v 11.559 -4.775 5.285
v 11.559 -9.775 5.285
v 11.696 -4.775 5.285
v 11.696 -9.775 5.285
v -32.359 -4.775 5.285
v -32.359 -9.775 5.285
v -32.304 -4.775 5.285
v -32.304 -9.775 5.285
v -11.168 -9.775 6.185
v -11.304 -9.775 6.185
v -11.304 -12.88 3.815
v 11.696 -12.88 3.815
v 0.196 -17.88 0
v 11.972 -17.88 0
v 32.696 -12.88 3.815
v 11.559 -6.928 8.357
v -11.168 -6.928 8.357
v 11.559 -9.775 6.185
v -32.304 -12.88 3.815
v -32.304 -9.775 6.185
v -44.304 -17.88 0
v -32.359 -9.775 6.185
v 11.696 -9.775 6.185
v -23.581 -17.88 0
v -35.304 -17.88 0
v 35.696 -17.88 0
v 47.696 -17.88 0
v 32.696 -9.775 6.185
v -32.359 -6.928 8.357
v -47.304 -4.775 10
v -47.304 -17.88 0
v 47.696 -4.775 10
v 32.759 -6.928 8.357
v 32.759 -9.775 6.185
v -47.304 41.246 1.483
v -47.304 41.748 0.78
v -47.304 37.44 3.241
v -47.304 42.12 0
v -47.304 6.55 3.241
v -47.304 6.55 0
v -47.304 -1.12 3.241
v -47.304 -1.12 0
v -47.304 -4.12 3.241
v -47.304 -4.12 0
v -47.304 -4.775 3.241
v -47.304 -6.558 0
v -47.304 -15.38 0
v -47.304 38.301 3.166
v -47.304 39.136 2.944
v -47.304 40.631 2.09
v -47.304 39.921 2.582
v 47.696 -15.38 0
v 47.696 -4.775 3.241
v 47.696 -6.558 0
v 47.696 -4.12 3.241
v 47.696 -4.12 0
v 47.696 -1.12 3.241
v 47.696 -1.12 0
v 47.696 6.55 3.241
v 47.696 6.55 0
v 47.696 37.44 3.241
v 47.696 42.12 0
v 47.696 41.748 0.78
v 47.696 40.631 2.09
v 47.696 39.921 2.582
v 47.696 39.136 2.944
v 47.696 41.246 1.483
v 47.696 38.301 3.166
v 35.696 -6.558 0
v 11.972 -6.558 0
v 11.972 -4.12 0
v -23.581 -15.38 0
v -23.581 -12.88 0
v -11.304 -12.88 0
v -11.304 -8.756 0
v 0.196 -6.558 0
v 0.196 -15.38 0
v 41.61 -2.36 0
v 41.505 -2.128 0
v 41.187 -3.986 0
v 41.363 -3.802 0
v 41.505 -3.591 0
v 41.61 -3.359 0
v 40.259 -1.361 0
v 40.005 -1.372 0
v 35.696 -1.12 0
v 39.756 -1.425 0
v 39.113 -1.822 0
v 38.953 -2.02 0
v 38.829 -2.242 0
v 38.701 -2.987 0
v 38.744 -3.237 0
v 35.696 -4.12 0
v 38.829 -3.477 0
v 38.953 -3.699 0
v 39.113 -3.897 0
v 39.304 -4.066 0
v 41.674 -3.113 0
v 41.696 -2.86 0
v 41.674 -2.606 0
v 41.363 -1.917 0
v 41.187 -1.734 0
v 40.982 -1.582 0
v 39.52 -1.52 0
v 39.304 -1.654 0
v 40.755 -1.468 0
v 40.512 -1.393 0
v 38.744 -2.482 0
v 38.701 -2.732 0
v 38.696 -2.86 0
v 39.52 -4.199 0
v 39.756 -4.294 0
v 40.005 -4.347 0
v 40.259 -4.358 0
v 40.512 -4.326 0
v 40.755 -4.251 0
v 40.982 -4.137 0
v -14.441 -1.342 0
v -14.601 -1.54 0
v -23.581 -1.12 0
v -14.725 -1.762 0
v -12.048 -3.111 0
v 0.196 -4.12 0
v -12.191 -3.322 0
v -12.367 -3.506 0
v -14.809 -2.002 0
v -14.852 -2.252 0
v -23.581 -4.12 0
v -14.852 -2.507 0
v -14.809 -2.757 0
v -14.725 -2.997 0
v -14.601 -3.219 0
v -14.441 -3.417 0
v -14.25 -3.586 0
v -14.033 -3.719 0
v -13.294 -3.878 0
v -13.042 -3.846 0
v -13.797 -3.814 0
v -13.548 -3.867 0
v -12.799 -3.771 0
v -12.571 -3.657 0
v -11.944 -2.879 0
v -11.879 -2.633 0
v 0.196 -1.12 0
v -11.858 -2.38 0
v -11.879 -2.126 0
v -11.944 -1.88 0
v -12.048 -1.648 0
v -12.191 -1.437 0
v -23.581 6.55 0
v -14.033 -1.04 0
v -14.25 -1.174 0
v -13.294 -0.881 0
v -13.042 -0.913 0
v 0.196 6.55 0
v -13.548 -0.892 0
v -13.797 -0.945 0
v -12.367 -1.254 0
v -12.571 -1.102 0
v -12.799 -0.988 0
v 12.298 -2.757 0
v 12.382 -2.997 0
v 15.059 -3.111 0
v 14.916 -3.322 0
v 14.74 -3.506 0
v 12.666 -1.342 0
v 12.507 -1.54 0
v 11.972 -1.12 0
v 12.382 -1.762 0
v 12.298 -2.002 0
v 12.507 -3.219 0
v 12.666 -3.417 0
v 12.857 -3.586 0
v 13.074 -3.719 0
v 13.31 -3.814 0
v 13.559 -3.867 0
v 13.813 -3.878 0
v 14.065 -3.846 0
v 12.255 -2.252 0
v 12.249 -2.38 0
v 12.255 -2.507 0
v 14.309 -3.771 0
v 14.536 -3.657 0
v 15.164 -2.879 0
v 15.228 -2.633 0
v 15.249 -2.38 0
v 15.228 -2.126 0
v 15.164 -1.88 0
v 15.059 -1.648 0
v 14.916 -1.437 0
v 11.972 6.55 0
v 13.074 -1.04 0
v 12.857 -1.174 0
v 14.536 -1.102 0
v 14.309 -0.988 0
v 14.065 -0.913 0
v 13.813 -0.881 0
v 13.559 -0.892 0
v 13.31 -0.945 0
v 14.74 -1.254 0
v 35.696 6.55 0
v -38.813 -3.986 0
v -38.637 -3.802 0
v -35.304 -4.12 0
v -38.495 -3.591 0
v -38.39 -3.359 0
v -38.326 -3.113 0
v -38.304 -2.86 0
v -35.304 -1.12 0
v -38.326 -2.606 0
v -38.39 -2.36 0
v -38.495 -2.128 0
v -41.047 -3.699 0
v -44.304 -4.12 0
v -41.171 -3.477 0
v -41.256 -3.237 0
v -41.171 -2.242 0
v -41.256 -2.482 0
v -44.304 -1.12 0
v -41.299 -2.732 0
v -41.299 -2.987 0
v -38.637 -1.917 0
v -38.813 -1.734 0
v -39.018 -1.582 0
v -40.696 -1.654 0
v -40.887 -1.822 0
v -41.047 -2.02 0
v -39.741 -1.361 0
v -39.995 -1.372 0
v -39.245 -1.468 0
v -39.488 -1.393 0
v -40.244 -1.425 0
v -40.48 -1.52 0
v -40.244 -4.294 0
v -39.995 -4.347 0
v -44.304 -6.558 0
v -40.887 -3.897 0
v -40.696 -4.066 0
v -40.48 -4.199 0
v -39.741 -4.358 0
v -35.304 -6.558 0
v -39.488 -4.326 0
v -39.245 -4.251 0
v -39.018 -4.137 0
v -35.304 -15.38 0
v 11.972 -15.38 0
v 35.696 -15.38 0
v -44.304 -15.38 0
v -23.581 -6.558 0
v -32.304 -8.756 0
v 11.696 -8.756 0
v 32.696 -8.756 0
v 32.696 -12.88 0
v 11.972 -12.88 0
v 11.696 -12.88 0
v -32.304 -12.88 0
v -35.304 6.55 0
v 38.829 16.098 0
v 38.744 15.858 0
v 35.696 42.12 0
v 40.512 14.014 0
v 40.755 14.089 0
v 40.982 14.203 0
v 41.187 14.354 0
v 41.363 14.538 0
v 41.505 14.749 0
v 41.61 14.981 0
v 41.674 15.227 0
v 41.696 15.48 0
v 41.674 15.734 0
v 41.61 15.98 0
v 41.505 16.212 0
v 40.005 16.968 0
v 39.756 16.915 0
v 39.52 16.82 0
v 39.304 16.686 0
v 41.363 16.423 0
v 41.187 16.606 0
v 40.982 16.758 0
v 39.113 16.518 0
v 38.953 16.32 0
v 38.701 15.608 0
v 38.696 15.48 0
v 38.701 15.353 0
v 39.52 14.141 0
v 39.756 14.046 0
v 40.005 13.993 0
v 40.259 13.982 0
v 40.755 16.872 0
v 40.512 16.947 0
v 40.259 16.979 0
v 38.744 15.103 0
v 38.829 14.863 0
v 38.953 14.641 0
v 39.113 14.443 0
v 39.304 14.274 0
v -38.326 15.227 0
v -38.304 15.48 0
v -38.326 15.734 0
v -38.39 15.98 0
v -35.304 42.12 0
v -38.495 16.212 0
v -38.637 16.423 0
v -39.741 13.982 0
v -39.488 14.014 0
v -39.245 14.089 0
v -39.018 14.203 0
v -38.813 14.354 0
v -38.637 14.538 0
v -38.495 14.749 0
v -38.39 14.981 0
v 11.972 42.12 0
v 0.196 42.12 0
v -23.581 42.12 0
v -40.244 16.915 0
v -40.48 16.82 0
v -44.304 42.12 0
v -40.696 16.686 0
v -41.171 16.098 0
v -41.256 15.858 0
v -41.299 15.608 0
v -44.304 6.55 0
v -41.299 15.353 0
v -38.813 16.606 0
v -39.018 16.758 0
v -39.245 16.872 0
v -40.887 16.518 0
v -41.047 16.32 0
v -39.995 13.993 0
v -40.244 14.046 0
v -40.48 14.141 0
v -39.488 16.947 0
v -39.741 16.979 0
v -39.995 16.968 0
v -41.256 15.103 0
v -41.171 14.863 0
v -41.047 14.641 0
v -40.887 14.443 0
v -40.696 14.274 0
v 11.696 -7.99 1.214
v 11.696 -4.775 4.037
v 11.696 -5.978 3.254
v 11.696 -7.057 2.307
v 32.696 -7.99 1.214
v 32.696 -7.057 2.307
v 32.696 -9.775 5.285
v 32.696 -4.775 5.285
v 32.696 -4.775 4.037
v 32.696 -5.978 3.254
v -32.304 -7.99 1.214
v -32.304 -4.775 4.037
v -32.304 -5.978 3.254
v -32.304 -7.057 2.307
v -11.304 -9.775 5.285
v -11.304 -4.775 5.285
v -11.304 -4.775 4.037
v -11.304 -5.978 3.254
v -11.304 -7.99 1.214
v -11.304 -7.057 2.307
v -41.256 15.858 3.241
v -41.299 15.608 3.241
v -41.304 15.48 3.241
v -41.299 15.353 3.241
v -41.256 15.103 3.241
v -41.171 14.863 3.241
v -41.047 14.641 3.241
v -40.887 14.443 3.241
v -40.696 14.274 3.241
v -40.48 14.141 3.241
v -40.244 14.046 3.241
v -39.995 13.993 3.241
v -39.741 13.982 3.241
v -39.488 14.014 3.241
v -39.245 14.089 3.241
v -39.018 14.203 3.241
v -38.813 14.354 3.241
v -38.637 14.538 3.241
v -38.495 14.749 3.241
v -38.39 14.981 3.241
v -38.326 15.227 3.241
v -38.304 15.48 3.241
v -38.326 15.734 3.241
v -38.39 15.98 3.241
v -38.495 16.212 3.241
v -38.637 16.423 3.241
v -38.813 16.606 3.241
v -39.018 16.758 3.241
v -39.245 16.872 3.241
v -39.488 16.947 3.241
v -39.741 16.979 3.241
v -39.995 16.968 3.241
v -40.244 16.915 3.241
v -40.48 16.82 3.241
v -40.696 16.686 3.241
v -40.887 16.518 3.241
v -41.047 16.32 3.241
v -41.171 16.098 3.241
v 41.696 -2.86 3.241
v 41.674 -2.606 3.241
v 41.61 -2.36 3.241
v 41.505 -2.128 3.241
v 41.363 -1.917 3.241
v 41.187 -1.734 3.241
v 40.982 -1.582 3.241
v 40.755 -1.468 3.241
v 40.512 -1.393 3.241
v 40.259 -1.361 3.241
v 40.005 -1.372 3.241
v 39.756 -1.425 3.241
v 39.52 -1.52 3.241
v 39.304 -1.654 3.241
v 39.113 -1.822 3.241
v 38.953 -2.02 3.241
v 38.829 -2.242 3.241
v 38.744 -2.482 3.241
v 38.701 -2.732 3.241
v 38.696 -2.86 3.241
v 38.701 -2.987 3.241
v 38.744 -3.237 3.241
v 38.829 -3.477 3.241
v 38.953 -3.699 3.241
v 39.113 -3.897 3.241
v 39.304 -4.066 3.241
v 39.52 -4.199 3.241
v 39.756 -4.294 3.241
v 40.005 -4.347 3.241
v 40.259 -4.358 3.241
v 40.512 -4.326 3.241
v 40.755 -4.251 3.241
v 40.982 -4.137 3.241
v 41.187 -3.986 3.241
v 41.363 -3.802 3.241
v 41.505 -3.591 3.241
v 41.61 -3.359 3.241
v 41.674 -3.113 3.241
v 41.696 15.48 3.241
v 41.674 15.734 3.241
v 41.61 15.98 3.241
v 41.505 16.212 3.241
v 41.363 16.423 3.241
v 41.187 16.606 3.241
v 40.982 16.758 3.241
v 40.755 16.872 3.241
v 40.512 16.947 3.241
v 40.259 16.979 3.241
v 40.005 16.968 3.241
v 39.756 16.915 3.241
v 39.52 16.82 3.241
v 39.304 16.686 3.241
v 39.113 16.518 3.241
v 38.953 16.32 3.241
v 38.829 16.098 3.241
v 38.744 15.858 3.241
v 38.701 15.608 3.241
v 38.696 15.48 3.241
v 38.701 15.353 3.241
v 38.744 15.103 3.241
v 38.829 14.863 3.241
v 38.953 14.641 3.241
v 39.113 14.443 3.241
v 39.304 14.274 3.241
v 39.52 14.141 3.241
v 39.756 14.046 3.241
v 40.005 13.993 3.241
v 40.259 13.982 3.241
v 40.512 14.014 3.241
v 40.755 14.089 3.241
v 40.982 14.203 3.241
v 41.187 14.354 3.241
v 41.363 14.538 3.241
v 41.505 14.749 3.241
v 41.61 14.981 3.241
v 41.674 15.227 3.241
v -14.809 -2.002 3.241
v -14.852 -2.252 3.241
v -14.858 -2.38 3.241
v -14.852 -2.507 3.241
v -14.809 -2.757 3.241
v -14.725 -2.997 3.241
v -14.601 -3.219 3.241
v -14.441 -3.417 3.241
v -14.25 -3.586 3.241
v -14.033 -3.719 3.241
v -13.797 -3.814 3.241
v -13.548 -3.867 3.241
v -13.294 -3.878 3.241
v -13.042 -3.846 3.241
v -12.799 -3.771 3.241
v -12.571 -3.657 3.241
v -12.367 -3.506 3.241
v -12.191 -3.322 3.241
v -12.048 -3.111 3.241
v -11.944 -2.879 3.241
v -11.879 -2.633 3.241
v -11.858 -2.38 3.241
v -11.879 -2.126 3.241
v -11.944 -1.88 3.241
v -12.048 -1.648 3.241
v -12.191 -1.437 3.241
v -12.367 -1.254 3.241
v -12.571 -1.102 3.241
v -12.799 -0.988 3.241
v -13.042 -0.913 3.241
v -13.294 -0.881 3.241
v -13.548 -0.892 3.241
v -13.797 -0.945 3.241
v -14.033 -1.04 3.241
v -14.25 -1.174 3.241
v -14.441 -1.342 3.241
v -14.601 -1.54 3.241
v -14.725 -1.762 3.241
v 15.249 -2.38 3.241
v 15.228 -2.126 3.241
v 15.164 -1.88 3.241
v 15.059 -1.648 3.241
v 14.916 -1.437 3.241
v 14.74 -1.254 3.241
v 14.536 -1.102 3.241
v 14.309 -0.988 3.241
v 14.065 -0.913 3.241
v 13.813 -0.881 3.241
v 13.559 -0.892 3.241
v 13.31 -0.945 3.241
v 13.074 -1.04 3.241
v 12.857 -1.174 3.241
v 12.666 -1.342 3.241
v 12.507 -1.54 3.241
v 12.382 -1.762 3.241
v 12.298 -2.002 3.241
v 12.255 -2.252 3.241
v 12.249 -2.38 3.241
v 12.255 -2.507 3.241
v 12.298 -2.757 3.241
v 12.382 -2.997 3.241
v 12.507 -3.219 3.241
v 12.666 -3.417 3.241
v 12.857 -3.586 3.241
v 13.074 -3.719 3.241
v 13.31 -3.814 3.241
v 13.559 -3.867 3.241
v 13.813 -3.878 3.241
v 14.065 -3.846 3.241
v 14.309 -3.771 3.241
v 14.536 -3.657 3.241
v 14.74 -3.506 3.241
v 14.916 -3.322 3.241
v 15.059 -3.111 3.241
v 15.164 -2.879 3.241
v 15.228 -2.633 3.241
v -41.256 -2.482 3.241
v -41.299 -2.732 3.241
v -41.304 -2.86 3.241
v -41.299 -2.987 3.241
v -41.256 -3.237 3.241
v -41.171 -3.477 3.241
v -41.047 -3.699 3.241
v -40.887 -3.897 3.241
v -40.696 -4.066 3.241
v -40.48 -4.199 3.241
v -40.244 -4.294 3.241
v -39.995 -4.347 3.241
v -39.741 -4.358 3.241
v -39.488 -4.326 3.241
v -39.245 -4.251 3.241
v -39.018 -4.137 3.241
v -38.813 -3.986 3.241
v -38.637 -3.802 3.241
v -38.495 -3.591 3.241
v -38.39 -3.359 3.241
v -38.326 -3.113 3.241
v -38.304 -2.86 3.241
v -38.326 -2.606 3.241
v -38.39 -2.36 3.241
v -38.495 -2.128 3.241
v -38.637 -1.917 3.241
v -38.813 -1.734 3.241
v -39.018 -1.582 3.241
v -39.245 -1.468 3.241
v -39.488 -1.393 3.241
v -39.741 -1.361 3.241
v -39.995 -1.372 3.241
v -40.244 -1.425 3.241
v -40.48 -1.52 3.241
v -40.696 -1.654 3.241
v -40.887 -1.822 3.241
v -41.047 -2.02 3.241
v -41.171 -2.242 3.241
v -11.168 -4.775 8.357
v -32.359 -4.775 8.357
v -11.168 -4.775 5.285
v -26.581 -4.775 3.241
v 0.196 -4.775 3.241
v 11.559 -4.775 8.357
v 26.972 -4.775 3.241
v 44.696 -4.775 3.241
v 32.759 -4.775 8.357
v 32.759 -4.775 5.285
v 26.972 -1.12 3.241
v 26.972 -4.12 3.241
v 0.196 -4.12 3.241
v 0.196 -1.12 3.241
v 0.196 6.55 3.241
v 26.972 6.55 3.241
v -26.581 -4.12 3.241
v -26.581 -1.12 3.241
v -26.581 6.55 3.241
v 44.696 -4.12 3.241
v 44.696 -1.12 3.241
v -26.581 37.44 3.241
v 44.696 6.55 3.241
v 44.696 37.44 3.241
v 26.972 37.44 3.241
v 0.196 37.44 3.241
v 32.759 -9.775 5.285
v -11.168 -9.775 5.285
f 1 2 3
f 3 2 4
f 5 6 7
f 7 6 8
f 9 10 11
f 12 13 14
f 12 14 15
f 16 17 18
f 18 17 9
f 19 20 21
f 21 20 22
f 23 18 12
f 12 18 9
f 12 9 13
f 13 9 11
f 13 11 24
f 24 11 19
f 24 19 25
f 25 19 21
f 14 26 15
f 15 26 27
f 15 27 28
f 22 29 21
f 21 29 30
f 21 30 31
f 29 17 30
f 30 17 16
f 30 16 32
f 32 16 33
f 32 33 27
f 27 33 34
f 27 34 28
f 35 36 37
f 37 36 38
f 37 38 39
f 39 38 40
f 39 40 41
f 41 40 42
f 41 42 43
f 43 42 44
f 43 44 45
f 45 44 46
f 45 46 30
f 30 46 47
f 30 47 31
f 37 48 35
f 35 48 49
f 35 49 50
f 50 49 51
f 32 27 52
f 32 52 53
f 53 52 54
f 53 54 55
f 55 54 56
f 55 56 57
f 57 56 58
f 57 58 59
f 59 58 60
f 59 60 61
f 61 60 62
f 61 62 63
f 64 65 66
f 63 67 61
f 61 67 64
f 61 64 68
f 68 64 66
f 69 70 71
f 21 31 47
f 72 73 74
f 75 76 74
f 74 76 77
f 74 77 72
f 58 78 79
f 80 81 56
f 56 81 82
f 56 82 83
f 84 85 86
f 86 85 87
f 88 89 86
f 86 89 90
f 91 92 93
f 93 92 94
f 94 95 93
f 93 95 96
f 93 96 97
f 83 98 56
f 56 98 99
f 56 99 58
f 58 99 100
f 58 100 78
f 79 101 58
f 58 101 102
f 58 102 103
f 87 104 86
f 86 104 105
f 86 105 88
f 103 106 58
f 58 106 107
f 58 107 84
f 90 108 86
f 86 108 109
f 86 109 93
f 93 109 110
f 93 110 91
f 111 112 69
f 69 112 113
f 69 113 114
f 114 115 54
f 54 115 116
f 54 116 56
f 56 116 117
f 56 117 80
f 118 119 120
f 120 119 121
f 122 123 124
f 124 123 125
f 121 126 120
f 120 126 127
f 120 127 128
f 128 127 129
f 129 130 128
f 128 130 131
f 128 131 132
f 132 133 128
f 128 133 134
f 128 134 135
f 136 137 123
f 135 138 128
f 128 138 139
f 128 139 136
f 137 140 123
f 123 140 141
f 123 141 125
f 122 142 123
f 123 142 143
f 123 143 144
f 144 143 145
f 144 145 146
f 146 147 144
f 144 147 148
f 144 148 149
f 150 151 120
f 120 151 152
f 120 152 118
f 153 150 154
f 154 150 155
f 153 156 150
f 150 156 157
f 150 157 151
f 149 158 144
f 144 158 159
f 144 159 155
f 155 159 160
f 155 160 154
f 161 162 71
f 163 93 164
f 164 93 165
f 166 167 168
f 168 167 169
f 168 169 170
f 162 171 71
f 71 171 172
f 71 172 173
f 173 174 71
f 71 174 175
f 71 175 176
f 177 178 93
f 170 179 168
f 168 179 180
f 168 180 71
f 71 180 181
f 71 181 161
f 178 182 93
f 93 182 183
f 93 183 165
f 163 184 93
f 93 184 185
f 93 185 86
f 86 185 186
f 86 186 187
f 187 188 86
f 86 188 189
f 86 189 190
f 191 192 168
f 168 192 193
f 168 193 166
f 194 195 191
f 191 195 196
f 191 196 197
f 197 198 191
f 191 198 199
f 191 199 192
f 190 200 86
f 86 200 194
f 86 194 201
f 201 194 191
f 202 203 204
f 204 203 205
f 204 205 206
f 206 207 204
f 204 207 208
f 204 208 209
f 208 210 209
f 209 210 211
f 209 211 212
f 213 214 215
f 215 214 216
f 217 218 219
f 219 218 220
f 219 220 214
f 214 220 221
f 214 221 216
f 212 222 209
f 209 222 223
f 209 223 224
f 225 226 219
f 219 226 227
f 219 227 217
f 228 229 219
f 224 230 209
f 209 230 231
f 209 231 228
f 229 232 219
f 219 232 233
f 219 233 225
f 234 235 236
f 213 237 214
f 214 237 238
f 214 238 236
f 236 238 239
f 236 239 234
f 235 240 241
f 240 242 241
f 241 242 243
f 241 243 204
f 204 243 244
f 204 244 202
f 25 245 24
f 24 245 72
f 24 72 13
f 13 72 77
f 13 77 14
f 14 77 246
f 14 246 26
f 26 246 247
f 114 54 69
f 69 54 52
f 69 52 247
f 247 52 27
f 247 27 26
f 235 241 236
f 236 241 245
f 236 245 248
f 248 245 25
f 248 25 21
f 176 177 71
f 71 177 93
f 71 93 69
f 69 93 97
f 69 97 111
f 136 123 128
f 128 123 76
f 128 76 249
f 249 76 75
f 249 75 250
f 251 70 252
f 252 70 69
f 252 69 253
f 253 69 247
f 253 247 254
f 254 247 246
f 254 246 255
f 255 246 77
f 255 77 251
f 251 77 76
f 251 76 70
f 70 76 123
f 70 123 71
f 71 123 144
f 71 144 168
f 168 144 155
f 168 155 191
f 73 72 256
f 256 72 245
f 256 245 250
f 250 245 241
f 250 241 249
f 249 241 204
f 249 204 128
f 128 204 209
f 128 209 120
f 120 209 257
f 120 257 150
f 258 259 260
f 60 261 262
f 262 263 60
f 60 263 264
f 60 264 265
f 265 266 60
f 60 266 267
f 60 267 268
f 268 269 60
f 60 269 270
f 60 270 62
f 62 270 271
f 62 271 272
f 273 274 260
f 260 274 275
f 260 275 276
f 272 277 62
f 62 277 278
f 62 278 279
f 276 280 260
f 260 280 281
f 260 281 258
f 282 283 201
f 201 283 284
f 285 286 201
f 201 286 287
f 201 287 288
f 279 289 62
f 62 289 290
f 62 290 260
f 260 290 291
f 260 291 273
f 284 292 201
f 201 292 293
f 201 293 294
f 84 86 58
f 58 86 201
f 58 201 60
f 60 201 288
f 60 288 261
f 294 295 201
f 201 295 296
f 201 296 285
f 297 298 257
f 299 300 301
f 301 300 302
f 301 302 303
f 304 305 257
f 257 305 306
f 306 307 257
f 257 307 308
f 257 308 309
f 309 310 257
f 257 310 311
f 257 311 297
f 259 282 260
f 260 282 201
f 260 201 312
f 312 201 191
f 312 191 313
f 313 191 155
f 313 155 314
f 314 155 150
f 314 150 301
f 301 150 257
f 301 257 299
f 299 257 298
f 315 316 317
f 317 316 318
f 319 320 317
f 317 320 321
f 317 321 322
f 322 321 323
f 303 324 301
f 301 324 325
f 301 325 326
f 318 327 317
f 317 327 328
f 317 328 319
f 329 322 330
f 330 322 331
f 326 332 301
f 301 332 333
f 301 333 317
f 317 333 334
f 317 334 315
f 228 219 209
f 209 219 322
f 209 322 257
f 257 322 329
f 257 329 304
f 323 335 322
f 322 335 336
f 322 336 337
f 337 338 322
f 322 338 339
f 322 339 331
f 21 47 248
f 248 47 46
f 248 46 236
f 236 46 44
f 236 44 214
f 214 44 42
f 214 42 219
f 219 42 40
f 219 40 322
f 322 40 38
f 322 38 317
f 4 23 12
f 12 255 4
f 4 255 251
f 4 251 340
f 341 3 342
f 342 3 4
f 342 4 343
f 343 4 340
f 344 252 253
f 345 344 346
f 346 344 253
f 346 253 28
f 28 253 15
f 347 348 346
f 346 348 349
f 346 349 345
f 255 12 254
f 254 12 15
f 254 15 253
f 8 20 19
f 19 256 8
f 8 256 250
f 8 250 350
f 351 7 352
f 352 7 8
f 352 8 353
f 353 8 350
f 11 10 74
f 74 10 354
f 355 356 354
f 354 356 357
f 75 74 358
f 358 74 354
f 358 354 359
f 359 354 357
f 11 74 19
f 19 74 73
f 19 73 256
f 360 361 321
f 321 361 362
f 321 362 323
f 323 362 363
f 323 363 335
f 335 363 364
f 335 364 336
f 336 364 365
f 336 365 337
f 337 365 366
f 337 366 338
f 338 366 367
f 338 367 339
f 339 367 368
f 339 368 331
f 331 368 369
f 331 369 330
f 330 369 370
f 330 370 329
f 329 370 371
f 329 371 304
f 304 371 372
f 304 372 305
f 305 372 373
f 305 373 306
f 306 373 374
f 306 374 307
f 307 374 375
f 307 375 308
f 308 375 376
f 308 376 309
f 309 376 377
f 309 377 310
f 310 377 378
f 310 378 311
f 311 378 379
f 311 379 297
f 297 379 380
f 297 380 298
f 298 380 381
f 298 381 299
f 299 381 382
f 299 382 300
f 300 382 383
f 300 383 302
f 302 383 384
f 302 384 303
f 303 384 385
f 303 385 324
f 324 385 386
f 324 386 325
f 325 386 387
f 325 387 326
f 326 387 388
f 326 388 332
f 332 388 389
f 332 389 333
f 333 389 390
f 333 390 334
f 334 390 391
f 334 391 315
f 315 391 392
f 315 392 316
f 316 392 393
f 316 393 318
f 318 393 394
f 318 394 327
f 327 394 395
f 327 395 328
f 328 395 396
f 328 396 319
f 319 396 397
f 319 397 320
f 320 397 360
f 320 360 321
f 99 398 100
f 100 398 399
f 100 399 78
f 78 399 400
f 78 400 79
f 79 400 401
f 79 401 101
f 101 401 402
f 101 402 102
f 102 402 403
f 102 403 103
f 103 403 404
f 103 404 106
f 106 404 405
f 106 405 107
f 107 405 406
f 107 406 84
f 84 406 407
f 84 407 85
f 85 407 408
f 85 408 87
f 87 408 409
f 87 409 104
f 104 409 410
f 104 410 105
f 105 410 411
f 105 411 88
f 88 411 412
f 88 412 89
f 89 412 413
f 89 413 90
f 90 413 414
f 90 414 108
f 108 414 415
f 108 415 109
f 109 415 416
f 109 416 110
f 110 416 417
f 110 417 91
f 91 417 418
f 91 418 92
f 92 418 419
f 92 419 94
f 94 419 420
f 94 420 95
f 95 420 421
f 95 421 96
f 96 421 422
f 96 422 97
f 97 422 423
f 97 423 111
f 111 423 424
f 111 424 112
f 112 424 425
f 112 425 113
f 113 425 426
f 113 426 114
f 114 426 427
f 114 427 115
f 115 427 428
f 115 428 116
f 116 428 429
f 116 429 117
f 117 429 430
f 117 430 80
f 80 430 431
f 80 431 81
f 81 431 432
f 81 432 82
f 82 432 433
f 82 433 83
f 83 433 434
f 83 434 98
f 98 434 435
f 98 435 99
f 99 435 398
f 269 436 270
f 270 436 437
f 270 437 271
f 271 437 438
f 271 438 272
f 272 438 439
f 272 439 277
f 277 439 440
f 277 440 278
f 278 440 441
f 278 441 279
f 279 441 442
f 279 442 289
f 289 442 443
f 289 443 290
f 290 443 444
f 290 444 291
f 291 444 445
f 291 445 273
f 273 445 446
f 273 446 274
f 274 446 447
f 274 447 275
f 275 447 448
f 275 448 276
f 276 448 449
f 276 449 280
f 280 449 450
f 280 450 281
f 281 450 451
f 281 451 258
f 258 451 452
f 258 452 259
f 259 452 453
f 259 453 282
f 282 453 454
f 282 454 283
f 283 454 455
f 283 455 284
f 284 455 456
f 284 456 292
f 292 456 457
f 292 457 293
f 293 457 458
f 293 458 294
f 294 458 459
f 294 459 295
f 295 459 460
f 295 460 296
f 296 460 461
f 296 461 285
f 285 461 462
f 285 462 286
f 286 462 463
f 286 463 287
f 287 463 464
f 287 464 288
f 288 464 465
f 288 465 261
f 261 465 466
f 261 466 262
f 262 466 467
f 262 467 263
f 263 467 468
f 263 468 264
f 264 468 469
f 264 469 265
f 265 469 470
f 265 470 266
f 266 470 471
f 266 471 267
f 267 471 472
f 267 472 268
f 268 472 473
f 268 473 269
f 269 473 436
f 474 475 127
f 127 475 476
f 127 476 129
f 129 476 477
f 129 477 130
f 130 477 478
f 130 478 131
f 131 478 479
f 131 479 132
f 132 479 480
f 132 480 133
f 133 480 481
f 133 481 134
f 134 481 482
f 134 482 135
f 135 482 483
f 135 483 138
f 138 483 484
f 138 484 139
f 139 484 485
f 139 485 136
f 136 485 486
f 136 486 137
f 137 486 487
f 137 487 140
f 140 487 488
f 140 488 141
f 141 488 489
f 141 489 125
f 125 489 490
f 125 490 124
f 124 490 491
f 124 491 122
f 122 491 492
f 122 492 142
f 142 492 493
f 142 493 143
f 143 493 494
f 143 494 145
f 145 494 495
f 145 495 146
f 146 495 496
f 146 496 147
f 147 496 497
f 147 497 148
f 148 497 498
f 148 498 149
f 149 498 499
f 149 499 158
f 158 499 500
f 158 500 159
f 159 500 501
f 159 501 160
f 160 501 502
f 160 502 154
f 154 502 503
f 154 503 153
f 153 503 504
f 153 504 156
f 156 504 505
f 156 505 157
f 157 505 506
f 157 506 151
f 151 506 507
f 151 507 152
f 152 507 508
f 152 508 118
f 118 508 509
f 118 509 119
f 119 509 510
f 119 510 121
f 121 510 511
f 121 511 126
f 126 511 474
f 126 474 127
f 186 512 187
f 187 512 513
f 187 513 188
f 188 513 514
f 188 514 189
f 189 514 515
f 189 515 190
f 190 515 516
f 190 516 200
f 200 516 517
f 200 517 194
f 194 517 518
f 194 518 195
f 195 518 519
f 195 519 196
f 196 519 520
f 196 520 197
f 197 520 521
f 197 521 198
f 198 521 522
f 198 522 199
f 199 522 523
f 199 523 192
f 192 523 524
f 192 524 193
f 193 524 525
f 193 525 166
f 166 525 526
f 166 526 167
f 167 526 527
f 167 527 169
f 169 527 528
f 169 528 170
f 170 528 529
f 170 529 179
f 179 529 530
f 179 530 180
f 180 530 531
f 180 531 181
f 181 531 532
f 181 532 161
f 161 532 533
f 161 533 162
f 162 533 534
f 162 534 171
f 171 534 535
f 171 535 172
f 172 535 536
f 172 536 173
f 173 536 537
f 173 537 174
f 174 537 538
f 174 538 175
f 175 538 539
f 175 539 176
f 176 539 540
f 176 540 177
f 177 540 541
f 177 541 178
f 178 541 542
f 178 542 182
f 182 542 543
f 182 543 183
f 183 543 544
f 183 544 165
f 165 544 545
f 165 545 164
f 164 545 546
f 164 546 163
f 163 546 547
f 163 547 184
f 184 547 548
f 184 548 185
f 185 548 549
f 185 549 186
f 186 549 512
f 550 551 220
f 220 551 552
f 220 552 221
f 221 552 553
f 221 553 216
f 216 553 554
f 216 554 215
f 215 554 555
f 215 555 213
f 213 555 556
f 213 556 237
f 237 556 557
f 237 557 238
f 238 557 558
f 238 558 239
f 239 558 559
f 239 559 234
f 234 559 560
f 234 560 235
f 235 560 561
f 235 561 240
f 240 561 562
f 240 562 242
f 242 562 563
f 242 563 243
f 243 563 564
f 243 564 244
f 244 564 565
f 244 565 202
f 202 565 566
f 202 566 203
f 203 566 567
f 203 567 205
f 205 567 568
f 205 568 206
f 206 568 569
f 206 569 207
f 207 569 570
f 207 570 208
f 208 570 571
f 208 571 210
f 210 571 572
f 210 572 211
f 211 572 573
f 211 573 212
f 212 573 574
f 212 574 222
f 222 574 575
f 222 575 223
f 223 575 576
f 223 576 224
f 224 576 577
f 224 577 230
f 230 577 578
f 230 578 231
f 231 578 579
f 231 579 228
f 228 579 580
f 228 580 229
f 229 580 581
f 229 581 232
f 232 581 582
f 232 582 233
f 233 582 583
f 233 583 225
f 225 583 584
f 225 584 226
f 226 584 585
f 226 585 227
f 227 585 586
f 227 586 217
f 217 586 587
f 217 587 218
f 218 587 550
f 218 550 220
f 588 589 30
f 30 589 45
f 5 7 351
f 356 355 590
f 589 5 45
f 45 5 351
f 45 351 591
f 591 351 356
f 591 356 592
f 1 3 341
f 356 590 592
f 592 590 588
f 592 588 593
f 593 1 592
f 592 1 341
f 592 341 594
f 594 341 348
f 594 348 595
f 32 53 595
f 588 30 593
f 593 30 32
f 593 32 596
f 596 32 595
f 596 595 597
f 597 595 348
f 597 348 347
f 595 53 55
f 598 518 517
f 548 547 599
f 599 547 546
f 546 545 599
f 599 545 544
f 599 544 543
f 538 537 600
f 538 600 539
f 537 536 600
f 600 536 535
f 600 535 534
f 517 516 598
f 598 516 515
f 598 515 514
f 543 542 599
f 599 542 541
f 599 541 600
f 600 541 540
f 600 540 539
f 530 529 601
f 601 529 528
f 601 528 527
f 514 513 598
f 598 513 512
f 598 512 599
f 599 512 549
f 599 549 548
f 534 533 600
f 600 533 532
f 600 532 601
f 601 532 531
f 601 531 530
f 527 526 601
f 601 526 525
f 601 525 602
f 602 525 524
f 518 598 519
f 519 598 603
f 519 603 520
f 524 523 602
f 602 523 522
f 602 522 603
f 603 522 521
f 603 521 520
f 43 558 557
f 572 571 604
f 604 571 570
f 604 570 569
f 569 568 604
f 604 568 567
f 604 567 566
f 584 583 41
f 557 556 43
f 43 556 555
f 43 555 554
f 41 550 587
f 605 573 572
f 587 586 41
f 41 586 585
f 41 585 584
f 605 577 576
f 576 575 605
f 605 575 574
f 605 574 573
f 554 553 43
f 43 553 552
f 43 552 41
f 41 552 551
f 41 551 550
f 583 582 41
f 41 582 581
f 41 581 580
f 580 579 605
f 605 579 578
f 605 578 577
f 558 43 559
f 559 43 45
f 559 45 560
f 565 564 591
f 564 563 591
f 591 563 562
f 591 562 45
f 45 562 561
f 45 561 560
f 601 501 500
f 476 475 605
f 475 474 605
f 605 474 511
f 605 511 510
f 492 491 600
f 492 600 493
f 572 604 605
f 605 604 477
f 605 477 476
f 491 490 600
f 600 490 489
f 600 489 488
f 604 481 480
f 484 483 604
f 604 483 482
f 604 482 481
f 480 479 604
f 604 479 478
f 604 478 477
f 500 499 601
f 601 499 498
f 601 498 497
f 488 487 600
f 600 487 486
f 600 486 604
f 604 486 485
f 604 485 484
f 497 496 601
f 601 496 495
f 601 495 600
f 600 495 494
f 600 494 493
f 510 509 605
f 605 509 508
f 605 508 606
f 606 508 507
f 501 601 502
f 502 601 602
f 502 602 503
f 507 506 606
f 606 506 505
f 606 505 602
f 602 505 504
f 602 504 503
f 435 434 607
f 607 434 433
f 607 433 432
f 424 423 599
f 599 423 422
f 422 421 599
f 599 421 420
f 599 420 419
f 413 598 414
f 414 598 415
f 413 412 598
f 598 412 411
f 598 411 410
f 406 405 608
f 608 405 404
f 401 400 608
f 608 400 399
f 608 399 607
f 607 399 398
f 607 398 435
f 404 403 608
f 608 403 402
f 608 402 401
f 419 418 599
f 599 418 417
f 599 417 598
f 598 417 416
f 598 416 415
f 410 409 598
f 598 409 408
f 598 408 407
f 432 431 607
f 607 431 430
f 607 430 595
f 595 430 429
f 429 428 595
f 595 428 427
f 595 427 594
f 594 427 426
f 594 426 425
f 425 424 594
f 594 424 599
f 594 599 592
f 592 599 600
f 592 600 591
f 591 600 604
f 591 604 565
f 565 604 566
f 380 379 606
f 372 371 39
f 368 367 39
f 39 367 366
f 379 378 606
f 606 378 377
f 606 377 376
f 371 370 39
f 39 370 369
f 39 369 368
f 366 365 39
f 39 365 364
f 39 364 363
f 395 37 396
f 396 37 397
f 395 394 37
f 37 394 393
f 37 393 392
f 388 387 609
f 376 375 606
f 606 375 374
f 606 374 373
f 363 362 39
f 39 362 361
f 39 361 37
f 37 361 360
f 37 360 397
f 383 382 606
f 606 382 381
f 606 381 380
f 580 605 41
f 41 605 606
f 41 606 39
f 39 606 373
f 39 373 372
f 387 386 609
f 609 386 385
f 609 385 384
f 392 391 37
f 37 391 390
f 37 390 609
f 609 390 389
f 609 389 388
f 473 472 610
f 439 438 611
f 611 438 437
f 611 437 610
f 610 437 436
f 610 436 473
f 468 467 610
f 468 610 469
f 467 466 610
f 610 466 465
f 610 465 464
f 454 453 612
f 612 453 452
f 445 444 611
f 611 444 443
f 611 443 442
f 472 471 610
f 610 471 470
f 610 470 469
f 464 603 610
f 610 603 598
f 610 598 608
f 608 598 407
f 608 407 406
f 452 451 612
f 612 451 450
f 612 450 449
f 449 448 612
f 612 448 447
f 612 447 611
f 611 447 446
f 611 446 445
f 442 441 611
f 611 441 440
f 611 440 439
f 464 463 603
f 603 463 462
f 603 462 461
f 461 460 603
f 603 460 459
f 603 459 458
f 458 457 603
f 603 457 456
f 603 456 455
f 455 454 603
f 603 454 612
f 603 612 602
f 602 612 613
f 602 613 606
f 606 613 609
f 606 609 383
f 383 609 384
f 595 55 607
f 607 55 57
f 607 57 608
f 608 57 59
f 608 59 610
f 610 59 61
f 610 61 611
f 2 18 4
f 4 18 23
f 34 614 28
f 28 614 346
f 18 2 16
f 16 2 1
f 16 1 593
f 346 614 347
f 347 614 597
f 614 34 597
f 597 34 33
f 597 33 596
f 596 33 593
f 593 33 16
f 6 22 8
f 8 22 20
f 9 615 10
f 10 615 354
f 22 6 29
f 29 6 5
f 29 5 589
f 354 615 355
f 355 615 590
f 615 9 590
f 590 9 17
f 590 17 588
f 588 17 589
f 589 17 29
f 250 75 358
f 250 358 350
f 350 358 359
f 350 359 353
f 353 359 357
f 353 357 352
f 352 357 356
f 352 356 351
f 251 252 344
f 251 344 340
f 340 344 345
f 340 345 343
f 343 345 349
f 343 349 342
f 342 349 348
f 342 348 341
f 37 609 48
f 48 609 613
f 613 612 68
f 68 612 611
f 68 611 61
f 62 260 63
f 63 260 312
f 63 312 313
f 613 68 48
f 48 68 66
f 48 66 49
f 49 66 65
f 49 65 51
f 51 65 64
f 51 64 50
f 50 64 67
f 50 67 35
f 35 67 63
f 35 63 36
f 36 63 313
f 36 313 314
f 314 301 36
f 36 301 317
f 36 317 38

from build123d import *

# Parameters (mm, degrees)
CROQUIS1_W              = 95
CROQUIS1_H              = 50
SALIENTE_EXTRUIR1_DEPTH = 10
CROQUIS2_W              = 21
CROQUIS2_H              = 4.123726598
CORTAR_EXTRUIR1_DEPTH   = 20
CORTAR_EXTRUIR2_DEPTH   = 1000
REDONDEO1_R             = 5
CROQUIS5_R              = 1.5
CORTAR_EXTRUIR3_DEPTH   = 10
CORTAR_EXTRUIR4_DEPTH   = 140
CROQUIS8_W              = 21.19141069
CROQUIS8_H              = 3.071218941
CROQUIS8_W_2            = 21.2
CORTAR_EXTRUIR5_DEPTH   = 5
REDONDEO2_R             = 10
REDONDEO3_R             = 10
CROQUIS9_W              = 95
CROQUIS9_H              = 3.240818253
SALIENTE_EXTRUIR2_DEPTH = 10
REDONDEO4_R             = 5


with BuildPart() as part:
    # Croquis1 → Saliente-Extruir1 (new body)
    with BuildSketch(Plane.XY):
        with Locations((0.195712782, 7.120478413)):
            Rectangle(CROQUIS1_W, CROQUIS1_H)
    extrude(amount=SALIENTE_EXTRUIR1_DEPTH)

    # Croquis2 → Cortar-Extruir1 (cut)
    with BuildSketch(Plane.XY.offset(10)):
        with Locations((-21.804287218, -10.817658288)):
            Rectangle(CROQUIS2_W, CROQUIS2_H)
        with Locations((22.195712782, -10.817658288)):
            Rectangle(CROQUIS2_W, CROQUIS2_H)
    extrude(amount=-CORTAR_EXTRUIR1_DEPTH, mode=Mode.SUBTRACT)

    # Croquis3 → Cortar-Extruir2 (cut)
    with BuildSketch(Plane.ZY.offset(47.304287218)):
        Polygon((0, -17.879521587), (10, -4.774745355), (10, -17.879521587), align=None)
    extrude(amount=-CORTAR_EXTRUIR2_DEPTH, mode=Mode.SUBTRACT)

    # Redondeo1
    redondeo1_edges = [part.edges().sort_by_distance(p)[0] for p in [
        (0.195712782, 32.120478413, 10),
    ]]
    fillet(redondeo1_edges, radius=REDONDEO1_R)

    # Croquis5 → Cortar-Extruir3 (cut)
    with BuildSketch(Plane.XY.offset(10)):
        with Locations((-39.804287218, 15.480478413)):
            Circle(CROQUIS5_R)
        with Locations(Location((40.195712782, 15.480478413, 0), (0, 0, 180))):
            Circle(CROQUIS5_R)
        with Locations((-13.357848867, -2.379521587)):
            Circle(CROQUIS5_R)
        with Locations(Location((13.749274431, -2.379521587, 0), (0, 0, 180))):
            Circle(CROQUIS5_R)
        with Locations((-39.804287218, -2.859521587)):
            Circle(CROQUIS5_R)
        with Locations(Location((40.195712782, -2.859521587, 0), (0, 0, 180))):
            Circle(CROQUIS5_R)
    extrude(amount=-CORTAR_EXTRUIR3_DEPTH, mode=Mode.SUBTRACT)

    # Croquis7 → Cortar-Extruir4 (cut)
    with BuildSketch(Plane.ZY.offset(47.304287218)):
        Polygon((10, -4.774745355), (4.790814809, -4.774745355), (3.240818253, -4.774745355), (3.240818253, -4.292734616), (3.240818253, 32.120478413), (5, 32.120478413), (10, 32.120478413), align=None)
    extrude(amount=-CORTAR_EXTRUIR4_DEPTH, mode=Mode.SUBTRACT)

    # Croquis8 → Cortar-Extruir5 (cut)
    with BuildSketch(Plane(origin=(0, -4.774745355, 0), x_dir=(1, 0, 0), z_dir=(0, 1, 0))):
        with Locations((-21.763502643, -6.820936578)):
            Rectangle(CROQUIS8_W, CROQUIS8_H)
        with Locations((22.159222862, -6.820936578)):
            Rectangle(CROQUIS8_W_2, CROQUIS8_H)
    extrude(amount=-CORTAR_EXTRUIR5_DEPTH, mode=Mode.SUBTRACT)

    # Redondeo2
    # the kernel refuses this fillet: 10 mm, written as the material it takes off along each edge
    with BuildSketch(Plane(origin=(-11.304287218, -8.755794989, 5.285327107), x_dir=(0, 0, -1), z_dir=(-1, 0, 0))) as redondeo2_piece_1:
        with BuildLine():
            CenterArc((10, -8.818835496), REDONDEO2_R, 118.129583681, 61.870416319)
            Line((0, -8.818835496), (-0.2, -8.818835496))
            Line((-0.2, -8.818835496), (-0.2, 0))
            Line((-0.2, 0), (0, 0.2))
            ThreePointArc((0, 0.2), (2.642663554, 0.2), (5.191033649, 0.17637671))
            Line((5.191033649, 0.17637671), (5.285327107, 0))
        make_face()
    extrude(amount=21, mode=Mode.SUBTRACT)

    # Redondeo3
    # the kernel refuses this fillet: 10 mm, written as the material it takes off along each edge
    with BuildSketch(Plane(origin=(11.695712782, -8.755794989, 5.285327107), x_dir=(0, 0, -1), z_dir=(1, 0, 0))) as redondeo3_piece_1:
        with BuildLine():
            CenterArc((10, 8.818835496), REDONDEO3_R, 180, 61.870416319)
            Line((0, 8.818835496), (-0.2, 8.818835496))
            Line((-0.2, 8.818835496), (-0.2, 0))
            Line((-0.2, 0), (0, -0.2))
            ThreePointArc((0, -0.2), (2.642663554, -0.2), (5.191033649, -0.17637671))
            Line((5.191033649, -0.17637671), (5.285327107, 0))
        make_face()
    extrude(amount=21, mode=Mode.SUBTRACT)

    # Croquis9 → Saliente-Extruir2 (add)
    with BuildSketch(Plane(origin=(0, 32.120478413, 0), x_dir=(1, 0, 0), z_dir=(0, 1, 0))):
        with Locations((0.195712782, -1.620409127)):
            Rectangle(CROQUIS9_W, CROQUIS9_H)
    extrude(amount=SALIENTE_EXTRUIR2_DEPTH)

    # Redondeo4
    # the kernel refuses this fillet: 5 mm, written as the material it takes off along each edge
    with BuildSketch(Plane(origin=(59.396481876, 42.120478413, 3.240818253), x_dir=(0, 0, -1), z_dir=(-1, 0, 0))) as redondeo4_piece_1:
        with BuildLine():
            CenterArc((5, 4.680307637), REDONDEO4_R, 180, 69.400324349)
            Line((0, 4.680307637), (-0.1, 4.680307637))
            Line((-0.1, 4.680307637), (-0.1, 0))
            Line((-0.1, 0), (0, -0.1))
            ThreePointArc((0, -0.1), (1.620409126, -0.1), (3.205634618, -0.093606153))
            Line((3.205634618, -0.093606153), (3.240818253, 0))
        make_face()
    extrude(amount=118.401538187, mode=Mode.SUBTRACT)


solid = part.part
